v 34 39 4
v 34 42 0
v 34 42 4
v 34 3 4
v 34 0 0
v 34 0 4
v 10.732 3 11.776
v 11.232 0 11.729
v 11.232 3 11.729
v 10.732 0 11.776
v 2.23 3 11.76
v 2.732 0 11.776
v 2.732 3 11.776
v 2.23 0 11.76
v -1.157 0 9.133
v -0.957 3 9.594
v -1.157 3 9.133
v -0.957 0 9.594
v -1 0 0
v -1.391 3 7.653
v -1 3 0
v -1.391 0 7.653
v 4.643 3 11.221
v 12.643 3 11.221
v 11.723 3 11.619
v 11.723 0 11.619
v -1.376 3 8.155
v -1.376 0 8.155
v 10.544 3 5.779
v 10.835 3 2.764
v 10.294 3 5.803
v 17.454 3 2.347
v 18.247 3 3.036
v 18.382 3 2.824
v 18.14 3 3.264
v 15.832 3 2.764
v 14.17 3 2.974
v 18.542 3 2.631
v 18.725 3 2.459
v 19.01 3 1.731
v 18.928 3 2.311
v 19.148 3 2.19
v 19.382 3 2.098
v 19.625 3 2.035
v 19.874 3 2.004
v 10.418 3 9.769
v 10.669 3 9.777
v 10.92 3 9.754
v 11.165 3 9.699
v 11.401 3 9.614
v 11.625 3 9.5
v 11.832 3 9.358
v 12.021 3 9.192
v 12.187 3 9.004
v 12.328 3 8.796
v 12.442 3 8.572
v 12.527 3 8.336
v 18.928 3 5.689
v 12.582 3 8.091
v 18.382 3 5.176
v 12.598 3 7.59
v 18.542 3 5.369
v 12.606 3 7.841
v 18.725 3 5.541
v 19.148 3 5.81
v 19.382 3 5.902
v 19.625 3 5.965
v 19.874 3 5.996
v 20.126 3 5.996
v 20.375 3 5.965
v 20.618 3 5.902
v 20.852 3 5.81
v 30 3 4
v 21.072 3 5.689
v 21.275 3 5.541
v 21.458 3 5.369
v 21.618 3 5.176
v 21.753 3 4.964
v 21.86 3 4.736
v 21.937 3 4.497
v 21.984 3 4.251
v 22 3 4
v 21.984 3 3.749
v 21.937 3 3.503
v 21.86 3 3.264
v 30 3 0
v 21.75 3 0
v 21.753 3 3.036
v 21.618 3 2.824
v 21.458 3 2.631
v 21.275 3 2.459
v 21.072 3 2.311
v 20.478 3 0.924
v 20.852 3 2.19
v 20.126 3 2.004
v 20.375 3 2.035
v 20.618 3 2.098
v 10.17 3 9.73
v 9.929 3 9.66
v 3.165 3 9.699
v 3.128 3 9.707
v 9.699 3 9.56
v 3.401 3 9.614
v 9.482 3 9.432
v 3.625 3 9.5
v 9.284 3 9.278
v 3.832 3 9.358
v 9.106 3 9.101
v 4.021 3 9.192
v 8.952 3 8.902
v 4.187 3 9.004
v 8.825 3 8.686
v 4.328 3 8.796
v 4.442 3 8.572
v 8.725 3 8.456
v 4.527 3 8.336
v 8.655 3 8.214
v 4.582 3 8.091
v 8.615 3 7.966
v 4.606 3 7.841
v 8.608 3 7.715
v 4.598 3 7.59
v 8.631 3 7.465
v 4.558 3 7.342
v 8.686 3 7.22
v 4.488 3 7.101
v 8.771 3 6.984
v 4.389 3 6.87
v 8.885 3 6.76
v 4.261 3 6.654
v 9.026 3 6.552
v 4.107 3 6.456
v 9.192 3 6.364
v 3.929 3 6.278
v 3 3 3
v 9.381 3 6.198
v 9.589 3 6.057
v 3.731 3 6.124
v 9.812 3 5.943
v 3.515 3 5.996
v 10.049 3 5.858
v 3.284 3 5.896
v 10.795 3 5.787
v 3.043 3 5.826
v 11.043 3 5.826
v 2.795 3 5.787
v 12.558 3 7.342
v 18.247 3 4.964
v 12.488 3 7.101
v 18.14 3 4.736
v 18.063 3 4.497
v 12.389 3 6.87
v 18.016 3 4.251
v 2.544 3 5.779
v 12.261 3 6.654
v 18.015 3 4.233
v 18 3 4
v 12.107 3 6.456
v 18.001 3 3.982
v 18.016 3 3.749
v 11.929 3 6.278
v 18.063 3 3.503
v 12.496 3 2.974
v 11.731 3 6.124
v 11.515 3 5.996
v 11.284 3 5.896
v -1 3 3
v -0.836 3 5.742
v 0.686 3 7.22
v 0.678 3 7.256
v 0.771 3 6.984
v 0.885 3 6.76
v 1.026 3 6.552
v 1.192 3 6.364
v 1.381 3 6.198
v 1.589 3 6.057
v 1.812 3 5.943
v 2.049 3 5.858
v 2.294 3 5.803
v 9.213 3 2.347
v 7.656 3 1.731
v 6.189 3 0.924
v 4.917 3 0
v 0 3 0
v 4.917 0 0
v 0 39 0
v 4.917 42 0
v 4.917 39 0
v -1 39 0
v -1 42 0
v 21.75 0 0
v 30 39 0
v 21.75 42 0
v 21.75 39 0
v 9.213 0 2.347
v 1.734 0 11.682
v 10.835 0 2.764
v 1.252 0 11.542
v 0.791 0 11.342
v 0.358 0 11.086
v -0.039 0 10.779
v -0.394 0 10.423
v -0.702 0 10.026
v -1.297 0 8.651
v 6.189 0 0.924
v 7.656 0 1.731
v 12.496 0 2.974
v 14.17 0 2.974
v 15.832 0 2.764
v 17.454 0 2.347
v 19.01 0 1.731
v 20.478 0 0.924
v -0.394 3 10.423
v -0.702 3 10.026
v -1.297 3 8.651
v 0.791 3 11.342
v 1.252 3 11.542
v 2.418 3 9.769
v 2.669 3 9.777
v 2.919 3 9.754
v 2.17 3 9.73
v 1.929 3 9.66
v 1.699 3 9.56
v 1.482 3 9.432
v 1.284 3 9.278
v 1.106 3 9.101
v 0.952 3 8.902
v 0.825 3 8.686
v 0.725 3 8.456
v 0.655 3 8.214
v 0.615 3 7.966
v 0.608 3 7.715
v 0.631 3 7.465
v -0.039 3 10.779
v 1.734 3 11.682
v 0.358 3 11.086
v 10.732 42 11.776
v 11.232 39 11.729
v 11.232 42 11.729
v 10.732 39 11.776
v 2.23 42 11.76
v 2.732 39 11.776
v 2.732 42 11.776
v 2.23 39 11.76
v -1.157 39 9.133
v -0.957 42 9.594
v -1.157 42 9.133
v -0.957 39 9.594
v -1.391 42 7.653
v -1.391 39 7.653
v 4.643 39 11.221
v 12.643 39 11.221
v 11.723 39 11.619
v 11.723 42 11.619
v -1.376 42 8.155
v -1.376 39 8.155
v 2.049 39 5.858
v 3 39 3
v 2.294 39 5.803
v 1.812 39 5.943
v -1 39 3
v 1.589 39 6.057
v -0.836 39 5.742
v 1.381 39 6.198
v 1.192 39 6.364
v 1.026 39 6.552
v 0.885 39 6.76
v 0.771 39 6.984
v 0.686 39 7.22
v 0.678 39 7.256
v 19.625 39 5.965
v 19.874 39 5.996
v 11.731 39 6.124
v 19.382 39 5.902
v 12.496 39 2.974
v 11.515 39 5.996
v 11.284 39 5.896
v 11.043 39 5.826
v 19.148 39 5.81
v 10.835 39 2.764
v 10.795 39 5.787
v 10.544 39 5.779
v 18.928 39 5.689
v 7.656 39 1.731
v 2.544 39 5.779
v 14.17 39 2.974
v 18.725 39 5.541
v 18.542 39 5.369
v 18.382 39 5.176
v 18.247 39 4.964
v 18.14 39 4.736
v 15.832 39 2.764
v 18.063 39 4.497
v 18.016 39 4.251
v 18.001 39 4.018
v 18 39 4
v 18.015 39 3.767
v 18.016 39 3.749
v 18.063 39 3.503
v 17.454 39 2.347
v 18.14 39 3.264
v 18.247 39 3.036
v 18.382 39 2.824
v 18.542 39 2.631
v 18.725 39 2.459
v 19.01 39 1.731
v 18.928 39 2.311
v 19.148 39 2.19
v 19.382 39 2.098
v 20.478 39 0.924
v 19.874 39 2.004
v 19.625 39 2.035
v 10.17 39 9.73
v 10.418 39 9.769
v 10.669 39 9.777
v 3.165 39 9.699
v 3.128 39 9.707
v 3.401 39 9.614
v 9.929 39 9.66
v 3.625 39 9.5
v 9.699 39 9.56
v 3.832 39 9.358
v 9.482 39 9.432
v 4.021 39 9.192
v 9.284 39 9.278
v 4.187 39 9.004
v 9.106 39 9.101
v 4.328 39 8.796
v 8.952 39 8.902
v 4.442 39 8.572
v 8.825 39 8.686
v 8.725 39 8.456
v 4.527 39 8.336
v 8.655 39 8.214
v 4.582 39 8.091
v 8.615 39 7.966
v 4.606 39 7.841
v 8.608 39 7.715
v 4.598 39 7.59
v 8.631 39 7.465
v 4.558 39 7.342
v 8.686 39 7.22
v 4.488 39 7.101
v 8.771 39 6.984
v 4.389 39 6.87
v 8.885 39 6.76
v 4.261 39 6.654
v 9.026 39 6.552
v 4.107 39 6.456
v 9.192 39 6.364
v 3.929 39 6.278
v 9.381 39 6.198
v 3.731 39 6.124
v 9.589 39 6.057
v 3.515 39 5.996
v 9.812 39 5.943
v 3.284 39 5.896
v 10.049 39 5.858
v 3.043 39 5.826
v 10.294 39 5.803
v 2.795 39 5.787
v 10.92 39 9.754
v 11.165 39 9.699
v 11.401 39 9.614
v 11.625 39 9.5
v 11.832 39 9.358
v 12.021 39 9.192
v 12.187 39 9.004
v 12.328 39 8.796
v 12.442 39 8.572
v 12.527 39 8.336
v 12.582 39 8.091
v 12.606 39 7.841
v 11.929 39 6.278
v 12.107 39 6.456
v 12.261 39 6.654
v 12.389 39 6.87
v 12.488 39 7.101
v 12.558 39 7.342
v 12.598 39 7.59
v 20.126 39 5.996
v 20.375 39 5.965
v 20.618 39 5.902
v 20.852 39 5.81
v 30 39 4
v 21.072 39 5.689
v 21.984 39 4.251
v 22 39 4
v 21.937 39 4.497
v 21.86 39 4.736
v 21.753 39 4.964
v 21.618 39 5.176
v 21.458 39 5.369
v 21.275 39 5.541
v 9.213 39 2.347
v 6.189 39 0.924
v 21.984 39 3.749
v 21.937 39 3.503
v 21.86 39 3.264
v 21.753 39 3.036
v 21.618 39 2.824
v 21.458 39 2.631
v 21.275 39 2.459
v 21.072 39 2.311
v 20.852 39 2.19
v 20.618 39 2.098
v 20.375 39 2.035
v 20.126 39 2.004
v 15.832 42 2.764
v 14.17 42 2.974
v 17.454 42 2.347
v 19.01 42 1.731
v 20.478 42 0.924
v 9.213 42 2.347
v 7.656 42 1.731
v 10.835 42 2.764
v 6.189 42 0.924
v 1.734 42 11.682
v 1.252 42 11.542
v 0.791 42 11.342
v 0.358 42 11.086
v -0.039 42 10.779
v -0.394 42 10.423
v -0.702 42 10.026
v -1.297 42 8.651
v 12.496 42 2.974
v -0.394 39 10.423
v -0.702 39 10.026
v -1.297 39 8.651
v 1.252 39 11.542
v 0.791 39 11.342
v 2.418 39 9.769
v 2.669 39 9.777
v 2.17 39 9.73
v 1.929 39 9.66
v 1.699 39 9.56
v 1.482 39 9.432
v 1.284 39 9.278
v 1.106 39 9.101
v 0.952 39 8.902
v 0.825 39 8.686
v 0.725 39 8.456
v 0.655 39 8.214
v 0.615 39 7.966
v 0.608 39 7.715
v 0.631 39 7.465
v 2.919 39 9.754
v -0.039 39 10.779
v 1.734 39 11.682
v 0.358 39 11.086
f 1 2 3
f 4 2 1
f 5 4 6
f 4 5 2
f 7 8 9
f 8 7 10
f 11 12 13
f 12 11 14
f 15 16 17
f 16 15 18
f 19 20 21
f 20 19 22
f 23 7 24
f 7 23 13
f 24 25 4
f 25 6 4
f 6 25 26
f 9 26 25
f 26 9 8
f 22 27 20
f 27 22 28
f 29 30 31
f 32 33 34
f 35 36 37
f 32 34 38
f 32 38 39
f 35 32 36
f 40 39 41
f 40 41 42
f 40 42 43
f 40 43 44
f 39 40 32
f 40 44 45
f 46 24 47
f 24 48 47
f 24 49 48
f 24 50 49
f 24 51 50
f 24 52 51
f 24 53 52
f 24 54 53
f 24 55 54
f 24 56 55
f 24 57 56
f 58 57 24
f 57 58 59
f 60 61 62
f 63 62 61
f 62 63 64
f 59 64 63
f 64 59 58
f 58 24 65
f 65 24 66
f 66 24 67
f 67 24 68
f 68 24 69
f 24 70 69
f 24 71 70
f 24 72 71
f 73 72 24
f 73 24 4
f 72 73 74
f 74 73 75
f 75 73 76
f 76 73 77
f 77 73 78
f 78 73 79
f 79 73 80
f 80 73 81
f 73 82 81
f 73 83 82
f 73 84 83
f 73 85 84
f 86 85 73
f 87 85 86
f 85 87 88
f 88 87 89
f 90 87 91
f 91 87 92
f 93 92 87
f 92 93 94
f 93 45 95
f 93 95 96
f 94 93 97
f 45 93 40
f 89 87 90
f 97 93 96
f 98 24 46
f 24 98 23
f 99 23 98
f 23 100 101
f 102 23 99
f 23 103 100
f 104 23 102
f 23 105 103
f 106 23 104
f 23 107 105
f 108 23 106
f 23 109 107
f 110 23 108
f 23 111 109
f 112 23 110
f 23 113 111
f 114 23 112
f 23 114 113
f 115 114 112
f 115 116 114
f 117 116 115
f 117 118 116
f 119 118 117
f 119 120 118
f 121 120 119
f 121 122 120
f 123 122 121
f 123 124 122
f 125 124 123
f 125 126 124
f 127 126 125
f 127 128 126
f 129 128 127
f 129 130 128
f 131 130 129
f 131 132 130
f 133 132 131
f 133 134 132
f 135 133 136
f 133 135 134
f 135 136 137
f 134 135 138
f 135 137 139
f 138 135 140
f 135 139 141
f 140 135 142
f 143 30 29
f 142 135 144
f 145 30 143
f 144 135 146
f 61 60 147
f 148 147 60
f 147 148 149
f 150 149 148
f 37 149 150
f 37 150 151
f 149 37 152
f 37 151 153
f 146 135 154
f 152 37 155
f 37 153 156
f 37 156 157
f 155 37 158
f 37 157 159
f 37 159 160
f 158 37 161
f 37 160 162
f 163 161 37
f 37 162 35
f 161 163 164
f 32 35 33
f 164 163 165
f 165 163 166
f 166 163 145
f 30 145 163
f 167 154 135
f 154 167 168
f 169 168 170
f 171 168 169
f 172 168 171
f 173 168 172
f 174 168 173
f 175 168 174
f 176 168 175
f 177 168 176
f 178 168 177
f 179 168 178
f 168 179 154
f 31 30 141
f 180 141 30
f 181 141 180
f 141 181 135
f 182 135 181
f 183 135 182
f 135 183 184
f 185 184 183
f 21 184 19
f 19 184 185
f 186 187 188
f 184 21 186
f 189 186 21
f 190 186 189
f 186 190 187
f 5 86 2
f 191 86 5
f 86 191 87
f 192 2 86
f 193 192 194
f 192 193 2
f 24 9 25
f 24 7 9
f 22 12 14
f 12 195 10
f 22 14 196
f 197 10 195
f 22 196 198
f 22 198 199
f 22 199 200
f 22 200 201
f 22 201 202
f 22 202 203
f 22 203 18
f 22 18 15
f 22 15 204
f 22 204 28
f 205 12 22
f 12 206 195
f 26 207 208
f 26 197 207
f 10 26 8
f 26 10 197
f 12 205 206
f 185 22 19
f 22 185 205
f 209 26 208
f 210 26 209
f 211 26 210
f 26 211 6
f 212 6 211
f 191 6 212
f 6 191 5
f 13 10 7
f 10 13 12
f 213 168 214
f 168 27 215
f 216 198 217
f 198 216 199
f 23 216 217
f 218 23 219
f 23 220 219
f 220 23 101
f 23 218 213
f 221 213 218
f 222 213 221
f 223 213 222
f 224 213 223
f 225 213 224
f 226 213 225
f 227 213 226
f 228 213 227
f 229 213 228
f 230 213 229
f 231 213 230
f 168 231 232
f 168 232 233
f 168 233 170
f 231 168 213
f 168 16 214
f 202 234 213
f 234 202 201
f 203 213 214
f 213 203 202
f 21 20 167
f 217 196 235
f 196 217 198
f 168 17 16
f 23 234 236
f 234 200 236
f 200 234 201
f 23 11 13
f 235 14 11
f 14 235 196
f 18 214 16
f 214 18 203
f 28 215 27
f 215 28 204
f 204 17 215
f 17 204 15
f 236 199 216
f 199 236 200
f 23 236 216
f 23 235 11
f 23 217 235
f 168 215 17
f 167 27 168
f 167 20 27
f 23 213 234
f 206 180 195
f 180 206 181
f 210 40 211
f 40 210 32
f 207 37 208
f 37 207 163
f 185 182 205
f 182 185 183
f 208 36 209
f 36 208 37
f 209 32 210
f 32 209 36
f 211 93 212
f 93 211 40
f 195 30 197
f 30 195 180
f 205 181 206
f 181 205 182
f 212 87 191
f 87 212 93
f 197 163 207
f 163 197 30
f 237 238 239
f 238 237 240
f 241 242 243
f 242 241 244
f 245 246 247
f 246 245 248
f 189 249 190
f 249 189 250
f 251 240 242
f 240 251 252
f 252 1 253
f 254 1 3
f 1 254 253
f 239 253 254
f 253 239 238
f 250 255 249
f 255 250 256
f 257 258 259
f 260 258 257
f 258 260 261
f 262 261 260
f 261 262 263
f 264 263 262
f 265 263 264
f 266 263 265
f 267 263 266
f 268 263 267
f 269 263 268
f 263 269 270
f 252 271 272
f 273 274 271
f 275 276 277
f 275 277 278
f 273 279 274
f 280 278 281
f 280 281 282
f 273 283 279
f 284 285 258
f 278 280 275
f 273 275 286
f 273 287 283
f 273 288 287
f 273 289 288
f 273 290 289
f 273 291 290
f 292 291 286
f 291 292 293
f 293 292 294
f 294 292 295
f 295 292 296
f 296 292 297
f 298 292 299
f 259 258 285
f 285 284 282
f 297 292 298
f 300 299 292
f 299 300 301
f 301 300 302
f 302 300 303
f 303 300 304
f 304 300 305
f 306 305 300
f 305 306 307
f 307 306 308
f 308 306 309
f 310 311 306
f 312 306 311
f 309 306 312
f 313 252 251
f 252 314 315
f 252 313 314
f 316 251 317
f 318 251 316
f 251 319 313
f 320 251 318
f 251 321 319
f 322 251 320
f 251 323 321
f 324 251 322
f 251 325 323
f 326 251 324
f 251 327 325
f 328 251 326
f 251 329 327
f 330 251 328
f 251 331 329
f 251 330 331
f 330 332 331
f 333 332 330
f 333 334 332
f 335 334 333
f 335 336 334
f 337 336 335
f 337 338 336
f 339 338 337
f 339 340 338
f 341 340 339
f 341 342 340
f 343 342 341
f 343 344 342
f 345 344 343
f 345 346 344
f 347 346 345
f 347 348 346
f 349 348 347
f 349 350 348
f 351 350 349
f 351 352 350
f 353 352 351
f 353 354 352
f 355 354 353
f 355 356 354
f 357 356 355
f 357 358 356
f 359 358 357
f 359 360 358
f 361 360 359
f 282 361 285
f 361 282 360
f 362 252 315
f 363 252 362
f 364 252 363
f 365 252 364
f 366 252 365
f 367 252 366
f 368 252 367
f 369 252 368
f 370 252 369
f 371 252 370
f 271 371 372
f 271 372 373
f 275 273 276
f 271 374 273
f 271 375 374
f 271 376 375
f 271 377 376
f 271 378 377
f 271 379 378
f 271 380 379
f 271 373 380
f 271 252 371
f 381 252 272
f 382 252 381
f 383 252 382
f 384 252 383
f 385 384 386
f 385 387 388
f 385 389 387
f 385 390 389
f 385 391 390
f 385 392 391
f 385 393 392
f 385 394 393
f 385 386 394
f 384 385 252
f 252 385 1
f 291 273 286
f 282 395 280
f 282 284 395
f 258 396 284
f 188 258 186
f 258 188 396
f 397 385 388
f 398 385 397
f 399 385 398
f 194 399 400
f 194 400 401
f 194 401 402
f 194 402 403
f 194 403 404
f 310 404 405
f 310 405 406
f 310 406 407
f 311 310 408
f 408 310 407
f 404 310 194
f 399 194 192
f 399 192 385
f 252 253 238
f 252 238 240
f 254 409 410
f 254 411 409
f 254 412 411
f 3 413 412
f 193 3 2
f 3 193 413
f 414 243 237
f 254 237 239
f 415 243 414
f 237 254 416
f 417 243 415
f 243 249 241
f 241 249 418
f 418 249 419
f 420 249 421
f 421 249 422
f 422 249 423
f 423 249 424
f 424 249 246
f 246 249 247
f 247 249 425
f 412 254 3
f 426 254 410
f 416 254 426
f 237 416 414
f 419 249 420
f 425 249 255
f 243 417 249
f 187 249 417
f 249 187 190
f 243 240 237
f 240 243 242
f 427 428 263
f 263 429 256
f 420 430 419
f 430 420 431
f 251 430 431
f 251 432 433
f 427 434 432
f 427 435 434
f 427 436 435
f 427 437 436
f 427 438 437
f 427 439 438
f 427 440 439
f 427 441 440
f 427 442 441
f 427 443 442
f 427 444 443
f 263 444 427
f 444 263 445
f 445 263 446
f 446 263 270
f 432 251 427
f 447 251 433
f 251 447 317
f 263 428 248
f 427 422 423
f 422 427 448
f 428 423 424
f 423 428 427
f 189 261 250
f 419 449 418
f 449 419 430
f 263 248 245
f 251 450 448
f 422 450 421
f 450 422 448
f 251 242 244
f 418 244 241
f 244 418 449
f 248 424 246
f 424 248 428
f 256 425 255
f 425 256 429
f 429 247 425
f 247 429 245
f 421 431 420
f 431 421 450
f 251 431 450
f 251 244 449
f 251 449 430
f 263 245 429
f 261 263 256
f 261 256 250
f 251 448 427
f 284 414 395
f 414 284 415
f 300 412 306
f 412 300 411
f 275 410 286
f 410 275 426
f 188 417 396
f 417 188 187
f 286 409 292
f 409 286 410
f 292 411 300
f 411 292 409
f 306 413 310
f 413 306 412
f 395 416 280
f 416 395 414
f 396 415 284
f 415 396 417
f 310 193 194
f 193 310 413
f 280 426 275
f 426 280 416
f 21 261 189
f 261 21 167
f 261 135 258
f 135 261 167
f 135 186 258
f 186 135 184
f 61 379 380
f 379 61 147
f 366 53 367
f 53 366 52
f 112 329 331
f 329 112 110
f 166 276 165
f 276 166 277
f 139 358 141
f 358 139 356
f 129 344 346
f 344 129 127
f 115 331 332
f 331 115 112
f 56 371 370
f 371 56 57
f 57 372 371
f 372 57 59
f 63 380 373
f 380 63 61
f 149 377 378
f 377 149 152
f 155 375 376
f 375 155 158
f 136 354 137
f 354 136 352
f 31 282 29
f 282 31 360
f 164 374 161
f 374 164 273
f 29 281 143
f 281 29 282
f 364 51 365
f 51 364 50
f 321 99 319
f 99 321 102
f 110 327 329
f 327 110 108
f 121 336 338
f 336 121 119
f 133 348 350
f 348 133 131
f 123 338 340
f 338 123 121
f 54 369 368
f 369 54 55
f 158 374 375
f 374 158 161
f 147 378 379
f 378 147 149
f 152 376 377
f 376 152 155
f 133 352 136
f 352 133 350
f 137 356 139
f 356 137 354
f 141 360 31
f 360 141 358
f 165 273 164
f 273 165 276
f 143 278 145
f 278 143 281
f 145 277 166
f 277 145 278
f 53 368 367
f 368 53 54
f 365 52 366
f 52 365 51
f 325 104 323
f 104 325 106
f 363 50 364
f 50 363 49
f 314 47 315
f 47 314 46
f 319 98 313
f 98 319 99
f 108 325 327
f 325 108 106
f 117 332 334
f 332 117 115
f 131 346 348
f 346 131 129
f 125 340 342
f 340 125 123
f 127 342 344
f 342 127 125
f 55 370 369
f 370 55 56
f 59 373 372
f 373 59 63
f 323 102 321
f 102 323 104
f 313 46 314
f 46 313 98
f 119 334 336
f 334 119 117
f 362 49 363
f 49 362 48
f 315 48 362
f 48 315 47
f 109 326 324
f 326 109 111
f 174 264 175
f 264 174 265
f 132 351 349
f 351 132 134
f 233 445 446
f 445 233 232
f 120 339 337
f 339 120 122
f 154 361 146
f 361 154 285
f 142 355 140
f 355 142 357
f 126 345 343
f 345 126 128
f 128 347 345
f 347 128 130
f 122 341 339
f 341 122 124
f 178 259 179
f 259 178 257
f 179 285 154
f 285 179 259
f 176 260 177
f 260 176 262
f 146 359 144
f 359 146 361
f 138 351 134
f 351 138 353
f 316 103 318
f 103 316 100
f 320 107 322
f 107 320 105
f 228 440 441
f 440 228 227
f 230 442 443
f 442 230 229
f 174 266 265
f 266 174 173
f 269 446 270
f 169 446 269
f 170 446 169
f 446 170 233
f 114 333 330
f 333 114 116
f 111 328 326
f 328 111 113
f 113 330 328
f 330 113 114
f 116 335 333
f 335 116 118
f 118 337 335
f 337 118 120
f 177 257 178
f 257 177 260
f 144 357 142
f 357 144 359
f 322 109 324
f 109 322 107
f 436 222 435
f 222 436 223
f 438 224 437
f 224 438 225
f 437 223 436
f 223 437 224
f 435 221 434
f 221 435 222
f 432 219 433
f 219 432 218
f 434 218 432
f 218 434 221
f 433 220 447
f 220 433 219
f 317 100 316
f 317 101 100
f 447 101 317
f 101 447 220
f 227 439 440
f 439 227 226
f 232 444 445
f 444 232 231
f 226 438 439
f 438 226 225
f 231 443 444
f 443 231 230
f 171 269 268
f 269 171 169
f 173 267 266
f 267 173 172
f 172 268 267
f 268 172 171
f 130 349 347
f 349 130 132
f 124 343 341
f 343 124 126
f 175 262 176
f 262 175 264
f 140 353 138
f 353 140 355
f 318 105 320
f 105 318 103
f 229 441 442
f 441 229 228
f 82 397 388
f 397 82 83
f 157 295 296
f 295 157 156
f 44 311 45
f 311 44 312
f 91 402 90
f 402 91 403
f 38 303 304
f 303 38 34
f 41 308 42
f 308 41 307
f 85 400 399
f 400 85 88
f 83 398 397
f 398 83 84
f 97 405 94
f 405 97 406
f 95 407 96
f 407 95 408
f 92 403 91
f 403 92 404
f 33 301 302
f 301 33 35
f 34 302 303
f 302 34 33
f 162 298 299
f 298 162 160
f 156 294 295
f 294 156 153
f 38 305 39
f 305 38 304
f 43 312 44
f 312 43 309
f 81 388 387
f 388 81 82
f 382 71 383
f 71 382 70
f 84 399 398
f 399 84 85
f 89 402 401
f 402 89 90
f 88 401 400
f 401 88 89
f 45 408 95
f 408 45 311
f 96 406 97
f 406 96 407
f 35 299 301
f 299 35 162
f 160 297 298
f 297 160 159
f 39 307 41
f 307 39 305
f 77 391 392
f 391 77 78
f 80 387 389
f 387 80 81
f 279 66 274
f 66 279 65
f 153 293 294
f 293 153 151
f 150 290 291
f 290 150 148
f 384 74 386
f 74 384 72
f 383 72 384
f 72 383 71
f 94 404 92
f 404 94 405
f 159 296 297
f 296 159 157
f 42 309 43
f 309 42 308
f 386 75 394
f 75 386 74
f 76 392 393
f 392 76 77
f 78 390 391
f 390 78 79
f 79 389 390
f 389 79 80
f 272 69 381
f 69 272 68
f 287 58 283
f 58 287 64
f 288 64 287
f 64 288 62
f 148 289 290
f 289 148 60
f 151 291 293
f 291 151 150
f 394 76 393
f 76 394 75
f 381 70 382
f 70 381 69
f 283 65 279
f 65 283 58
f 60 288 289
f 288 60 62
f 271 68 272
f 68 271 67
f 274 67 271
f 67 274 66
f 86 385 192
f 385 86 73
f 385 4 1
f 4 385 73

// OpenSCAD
/*lock buckle is the same as the lock buckle you will find in bags laces
this element could be used in the tourniquet to tighten the strap for the first time before the final tightening by the windlass
will allow you pull the strap but will not go back whwn you let it

*/
rad=2;//cylinders radiuses
strap_w=36;//width of the strap in mm
wall_t=3;//thickness of the side walls in mm
$fn=50;
length=20;//buckle length
angle=-45;//positioning the cylinders
rear=4;//rear end bar thickness

/////////////////////////////////////
///////////////////////////////////////

rotate([0,angle,0])translate([length/2+wall_t,0,-rad])rotate([-90,0,0])cylinder(r=rad,h=strap_w+2*wall_t);

translate([-4*rad,0,0])rotate([0,angle,0])translate([length/2+wall_t,0,-rad])rotate([-90,0,0])cylinder(r=rad,h=strap_w+2*wall_t);//spare insert


//first cylinder to roll the strap"active"
translate([length,0,2*rad])rotate([-90,0,0])cylinder(r=rad,h=strap_w+2*wall_t);//second cylinder it sew the other end of the strap

    translate([1.5*length,0,0])cube([rear,strap_w+2*wall_t,rear]);//rear end of the bckle to hold the static strap end
    module side_walls(){
difference(){//building the side walls
hull(){//objects hulled together to make the shape of the wall
    translate([-4*rad,0,0])rotate([0,angle,0])translate([length/2+wall_t,0,-rad])rotate([-90,0,0])cylinder(r=2*rad,h=wall_t);//spare insert

    
    
rotate([0,angle,0])translate([length/2+wall_t,0,-rad])rotate([-90,0,0])cylinder(r=2*rad,h=wall_t);

translate([length,0,2*rad])rotate([-90,0,0])cylinder(r=2*rad,h=wall_t);

translate([-1,0,0])cube(wall_t);
    translate([1.5*length,0,0])cube([rear,wall_t,rear]);
}
translate([length/1.5,0,-length/1.5+wall_t])rotate([-90,0,0])cylinder(r=length/1.5,h=wall_t+.1);
//the curcular cun in the bottom of the walls
}
}



side_walls();
translate([0,strap_w+2*wall_t,0])//building the other wall "same but mirrored
mirror([0,1,0])side_walls();

//bar
difference(){//the front end of the buckle with angled cut to go with the strap
translate([-1,0,0])cube([wall_t+1,strap_w+2*wall_t,wall_t]);
    rotate([0,angle,0])translate([0,0,-wall_t])cube([2*wall_t,strap_w+2*wall_t,wall_t]);
}
